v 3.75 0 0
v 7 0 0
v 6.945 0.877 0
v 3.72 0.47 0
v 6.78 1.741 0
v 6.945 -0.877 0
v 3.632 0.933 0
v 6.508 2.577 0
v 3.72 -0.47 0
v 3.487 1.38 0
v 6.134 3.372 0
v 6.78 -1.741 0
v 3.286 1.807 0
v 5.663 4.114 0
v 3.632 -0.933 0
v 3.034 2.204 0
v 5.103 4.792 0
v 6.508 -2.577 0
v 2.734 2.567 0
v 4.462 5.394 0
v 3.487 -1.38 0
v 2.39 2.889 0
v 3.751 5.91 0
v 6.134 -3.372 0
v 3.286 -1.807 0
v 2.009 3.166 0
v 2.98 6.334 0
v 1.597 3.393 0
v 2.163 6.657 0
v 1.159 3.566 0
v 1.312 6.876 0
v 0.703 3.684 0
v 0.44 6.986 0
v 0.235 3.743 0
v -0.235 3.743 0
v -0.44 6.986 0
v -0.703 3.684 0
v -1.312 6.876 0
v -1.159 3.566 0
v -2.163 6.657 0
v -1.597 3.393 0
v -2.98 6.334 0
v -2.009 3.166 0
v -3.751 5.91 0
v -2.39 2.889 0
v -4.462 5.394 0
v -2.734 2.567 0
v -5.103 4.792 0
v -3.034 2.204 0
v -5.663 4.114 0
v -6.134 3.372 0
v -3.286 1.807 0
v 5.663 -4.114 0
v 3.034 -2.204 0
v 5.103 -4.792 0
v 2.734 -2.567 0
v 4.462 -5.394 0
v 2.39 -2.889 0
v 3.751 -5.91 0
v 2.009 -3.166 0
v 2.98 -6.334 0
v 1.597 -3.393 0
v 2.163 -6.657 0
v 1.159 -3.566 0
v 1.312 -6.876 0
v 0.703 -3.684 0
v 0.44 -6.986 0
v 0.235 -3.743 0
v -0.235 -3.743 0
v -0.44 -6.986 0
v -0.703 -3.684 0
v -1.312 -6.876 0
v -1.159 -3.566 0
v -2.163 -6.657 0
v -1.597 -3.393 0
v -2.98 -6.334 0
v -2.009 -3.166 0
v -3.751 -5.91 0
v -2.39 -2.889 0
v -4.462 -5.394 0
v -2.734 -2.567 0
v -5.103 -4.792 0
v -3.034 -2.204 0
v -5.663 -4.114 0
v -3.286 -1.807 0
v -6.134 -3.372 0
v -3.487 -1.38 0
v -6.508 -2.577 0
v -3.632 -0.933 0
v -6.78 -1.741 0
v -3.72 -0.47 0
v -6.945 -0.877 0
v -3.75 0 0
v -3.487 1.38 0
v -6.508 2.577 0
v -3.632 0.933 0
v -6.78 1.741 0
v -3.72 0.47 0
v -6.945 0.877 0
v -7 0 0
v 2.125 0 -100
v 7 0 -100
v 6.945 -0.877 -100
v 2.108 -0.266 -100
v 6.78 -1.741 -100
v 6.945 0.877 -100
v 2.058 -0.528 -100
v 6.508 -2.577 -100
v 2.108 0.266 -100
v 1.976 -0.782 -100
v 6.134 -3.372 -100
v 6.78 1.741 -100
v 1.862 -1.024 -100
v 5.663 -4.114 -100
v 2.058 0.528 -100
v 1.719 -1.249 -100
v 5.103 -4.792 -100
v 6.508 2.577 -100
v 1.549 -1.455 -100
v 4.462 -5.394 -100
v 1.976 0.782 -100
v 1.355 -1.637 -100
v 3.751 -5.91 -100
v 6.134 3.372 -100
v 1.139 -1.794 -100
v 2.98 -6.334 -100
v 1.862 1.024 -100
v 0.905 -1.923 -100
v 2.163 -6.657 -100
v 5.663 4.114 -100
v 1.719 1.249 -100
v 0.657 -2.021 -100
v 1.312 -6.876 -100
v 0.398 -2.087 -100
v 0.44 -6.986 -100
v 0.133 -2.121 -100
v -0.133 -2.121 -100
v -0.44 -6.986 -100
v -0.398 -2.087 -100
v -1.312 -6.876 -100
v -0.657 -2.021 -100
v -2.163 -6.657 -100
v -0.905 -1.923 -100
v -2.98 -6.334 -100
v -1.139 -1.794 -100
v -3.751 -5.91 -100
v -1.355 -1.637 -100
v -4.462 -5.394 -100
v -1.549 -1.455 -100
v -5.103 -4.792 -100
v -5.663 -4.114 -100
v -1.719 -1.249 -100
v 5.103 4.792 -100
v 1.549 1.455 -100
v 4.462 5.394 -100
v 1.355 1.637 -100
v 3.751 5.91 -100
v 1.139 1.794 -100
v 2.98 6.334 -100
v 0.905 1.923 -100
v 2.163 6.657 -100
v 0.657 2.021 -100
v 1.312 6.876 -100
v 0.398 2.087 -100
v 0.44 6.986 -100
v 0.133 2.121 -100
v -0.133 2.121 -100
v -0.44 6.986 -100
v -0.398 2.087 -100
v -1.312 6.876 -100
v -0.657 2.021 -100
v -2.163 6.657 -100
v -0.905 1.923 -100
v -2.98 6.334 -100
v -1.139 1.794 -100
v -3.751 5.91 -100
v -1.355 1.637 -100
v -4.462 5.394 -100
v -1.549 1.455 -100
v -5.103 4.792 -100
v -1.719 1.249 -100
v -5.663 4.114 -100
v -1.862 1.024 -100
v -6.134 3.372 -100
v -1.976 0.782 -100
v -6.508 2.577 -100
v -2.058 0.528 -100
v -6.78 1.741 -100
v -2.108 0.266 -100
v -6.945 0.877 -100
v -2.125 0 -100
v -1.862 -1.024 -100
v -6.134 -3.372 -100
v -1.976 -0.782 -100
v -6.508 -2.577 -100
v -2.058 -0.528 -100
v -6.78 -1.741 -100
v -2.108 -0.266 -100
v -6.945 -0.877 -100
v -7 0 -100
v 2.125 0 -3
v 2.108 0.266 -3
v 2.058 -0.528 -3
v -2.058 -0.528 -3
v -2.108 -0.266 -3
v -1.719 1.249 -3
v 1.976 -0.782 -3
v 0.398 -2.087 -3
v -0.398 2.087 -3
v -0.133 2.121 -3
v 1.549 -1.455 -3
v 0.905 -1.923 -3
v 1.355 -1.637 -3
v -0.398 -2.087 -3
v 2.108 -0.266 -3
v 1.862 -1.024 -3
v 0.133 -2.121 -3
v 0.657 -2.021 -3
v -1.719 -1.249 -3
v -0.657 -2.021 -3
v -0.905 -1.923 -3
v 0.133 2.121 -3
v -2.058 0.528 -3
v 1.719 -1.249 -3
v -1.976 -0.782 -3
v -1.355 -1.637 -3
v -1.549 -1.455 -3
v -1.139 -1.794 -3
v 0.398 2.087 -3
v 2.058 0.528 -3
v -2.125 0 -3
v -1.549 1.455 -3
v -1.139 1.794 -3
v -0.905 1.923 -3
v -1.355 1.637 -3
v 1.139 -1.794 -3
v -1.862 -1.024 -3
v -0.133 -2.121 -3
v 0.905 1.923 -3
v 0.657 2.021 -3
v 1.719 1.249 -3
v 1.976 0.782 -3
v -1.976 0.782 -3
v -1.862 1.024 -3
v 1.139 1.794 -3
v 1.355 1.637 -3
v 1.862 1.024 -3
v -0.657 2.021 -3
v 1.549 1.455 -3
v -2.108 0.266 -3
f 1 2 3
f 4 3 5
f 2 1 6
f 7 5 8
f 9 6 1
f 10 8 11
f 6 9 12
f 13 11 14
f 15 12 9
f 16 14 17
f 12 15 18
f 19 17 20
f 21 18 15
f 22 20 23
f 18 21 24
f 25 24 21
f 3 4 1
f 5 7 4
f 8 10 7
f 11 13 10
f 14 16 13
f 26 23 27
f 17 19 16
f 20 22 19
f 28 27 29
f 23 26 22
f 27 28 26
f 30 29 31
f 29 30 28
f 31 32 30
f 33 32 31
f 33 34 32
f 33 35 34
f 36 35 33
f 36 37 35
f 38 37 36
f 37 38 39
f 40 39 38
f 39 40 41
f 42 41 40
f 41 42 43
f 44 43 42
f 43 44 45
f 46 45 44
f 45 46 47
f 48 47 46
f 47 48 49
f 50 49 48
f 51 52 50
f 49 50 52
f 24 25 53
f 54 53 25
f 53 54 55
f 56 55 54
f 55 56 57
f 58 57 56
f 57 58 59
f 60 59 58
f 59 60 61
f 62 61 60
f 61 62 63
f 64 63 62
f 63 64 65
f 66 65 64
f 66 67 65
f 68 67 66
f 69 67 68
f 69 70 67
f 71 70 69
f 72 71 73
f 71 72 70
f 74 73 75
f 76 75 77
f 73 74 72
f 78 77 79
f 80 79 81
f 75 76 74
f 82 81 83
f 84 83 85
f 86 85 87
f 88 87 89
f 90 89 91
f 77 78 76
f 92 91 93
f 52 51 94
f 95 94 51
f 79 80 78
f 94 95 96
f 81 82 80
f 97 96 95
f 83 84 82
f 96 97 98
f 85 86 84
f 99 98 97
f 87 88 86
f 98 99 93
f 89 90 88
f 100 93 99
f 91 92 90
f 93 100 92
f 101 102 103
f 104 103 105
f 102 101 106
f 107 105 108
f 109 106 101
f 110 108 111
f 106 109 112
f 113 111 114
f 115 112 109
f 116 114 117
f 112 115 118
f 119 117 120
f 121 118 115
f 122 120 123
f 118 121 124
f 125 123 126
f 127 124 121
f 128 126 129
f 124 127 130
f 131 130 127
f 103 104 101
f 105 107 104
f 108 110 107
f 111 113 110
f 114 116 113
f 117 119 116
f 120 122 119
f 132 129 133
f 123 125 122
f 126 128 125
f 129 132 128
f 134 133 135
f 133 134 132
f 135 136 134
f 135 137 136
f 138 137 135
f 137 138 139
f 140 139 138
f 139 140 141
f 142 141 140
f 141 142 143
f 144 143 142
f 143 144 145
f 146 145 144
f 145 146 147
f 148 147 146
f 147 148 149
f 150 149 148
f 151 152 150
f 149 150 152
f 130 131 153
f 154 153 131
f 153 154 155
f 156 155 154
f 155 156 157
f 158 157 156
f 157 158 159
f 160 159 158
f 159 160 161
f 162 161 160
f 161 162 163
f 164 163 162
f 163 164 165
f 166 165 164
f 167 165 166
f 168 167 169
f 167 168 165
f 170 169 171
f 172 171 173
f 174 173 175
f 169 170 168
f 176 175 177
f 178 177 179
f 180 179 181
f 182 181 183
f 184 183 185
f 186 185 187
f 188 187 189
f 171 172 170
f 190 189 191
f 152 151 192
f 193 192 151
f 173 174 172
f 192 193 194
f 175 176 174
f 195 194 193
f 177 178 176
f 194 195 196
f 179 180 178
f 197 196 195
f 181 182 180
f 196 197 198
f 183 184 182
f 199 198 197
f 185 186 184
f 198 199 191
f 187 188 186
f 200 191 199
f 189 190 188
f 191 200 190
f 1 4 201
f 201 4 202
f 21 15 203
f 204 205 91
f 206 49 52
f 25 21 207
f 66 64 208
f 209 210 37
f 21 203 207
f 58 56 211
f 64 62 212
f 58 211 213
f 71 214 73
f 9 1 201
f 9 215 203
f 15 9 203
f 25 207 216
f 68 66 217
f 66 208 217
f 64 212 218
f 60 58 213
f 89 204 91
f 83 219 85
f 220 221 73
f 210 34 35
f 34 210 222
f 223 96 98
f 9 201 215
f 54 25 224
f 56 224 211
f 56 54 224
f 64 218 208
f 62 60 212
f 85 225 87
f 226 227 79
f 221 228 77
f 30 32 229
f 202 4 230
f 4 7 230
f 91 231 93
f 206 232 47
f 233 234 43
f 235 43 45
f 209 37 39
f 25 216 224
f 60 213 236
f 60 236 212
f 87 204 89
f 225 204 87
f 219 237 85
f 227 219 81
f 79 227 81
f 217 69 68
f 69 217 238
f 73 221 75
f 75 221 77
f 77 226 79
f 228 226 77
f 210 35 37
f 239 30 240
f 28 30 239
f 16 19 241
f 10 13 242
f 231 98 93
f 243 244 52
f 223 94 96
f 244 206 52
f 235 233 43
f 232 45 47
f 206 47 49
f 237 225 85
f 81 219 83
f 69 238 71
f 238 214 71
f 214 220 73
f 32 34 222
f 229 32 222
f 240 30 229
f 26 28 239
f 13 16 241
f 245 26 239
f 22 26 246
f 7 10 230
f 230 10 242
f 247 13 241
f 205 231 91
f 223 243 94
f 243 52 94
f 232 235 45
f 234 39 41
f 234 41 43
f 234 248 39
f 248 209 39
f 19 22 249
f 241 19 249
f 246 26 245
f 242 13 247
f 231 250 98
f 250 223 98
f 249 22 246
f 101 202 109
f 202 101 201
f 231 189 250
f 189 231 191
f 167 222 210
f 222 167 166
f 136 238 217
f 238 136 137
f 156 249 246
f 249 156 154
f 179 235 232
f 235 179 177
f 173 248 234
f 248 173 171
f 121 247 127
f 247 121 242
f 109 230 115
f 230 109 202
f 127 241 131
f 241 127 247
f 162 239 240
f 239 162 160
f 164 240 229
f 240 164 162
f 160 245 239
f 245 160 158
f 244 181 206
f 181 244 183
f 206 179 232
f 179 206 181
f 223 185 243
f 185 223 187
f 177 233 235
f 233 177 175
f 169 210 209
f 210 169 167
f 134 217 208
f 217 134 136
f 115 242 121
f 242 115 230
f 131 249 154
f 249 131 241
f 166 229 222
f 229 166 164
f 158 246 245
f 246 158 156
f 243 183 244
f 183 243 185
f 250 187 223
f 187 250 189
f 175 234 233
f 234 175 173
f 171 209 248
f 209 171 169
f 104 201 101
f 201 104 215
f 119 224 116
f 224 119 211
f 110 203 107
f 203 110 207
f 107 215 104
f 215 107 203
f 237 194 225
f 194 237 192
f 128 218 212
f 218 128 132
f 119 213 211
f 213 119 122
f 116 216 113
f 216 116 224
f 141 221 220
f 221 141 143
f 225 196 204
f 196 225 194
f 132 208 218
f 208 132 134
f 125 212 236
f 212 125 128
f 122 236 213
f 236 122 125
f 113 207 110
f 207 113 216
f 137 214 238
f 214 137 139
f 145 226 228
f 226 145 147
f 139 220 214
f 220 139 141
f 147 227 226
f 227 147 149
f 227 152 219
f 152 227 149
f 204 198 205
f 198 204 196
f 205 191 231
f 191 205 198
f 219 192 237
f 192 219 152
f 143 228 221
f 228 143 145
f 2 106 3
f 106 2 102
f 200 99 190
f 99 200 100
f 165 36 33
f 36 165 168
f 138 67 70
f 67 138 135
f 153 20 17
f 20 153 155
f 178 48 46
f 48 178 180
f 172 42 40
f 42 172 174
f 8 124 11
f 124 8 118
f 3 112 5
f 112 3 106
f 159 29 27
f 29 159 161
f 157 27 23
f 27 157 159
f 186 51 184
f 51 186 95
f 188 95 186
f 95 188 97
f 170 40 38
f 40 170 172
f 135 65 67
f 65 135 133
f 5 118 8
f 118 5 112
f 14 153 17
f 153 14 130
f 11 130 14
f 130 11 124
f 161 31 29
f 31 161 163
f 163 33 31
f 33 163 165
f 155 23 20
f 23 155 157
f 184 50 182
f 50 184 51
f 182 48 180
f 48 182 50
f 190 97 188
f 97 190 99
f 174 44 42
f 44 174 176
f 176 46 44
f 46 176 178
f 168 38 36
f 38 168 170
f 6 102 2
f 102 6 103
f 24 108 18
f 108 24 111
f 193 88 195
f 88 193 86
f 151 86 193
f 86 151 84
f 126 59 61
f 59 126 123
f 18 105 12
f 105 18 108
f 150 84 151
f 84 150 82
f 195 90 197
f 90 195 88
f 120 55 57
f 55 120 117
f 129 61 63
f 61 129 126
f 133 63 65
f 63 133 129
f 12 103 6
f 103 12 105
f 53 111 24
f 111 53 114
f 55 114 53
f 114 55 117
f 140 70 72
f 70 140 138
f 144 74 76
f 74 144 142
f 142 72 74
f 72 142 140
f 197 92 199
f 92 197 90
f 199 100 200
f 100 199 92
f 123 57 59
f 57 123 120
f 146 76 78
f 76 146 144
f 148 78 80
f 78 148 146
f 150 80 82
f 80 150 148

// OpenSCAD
$fn = 50;


difference() {
	union() {
		translate(v = [0, 0, -100.0000000000]) {
			cylinder(h = 100, r = 7.0000000000);
		}
		cylinder(h = 0, r = 16.0000000000);
	}
	union() {
		translate(v = [0, 0, 0]) {
			rotate(a = [0, 0, 0]) {
				difference() {
					union() {
						#translate(v = [0, 0, -100.0000000000]) {
							cylinder(h = 100, r = 2.0000000000);
						}
						#translate(v = [0, 0, -3]) {
							cylinder(h = 3, r1 = 2.1250000000, r2 = 3.7500000000);
						}
						#translate(v = [0, 0, -100.0000000000]) {
							cylinder(h = 100, r = 2.1250000000);
						}
						#translate(v = [0, 0, -100.0000000000]) {
							cylinder(h = 100, r = 2.0000000000);
						}
					}
					union();
				}
			}
		}
	}
}
